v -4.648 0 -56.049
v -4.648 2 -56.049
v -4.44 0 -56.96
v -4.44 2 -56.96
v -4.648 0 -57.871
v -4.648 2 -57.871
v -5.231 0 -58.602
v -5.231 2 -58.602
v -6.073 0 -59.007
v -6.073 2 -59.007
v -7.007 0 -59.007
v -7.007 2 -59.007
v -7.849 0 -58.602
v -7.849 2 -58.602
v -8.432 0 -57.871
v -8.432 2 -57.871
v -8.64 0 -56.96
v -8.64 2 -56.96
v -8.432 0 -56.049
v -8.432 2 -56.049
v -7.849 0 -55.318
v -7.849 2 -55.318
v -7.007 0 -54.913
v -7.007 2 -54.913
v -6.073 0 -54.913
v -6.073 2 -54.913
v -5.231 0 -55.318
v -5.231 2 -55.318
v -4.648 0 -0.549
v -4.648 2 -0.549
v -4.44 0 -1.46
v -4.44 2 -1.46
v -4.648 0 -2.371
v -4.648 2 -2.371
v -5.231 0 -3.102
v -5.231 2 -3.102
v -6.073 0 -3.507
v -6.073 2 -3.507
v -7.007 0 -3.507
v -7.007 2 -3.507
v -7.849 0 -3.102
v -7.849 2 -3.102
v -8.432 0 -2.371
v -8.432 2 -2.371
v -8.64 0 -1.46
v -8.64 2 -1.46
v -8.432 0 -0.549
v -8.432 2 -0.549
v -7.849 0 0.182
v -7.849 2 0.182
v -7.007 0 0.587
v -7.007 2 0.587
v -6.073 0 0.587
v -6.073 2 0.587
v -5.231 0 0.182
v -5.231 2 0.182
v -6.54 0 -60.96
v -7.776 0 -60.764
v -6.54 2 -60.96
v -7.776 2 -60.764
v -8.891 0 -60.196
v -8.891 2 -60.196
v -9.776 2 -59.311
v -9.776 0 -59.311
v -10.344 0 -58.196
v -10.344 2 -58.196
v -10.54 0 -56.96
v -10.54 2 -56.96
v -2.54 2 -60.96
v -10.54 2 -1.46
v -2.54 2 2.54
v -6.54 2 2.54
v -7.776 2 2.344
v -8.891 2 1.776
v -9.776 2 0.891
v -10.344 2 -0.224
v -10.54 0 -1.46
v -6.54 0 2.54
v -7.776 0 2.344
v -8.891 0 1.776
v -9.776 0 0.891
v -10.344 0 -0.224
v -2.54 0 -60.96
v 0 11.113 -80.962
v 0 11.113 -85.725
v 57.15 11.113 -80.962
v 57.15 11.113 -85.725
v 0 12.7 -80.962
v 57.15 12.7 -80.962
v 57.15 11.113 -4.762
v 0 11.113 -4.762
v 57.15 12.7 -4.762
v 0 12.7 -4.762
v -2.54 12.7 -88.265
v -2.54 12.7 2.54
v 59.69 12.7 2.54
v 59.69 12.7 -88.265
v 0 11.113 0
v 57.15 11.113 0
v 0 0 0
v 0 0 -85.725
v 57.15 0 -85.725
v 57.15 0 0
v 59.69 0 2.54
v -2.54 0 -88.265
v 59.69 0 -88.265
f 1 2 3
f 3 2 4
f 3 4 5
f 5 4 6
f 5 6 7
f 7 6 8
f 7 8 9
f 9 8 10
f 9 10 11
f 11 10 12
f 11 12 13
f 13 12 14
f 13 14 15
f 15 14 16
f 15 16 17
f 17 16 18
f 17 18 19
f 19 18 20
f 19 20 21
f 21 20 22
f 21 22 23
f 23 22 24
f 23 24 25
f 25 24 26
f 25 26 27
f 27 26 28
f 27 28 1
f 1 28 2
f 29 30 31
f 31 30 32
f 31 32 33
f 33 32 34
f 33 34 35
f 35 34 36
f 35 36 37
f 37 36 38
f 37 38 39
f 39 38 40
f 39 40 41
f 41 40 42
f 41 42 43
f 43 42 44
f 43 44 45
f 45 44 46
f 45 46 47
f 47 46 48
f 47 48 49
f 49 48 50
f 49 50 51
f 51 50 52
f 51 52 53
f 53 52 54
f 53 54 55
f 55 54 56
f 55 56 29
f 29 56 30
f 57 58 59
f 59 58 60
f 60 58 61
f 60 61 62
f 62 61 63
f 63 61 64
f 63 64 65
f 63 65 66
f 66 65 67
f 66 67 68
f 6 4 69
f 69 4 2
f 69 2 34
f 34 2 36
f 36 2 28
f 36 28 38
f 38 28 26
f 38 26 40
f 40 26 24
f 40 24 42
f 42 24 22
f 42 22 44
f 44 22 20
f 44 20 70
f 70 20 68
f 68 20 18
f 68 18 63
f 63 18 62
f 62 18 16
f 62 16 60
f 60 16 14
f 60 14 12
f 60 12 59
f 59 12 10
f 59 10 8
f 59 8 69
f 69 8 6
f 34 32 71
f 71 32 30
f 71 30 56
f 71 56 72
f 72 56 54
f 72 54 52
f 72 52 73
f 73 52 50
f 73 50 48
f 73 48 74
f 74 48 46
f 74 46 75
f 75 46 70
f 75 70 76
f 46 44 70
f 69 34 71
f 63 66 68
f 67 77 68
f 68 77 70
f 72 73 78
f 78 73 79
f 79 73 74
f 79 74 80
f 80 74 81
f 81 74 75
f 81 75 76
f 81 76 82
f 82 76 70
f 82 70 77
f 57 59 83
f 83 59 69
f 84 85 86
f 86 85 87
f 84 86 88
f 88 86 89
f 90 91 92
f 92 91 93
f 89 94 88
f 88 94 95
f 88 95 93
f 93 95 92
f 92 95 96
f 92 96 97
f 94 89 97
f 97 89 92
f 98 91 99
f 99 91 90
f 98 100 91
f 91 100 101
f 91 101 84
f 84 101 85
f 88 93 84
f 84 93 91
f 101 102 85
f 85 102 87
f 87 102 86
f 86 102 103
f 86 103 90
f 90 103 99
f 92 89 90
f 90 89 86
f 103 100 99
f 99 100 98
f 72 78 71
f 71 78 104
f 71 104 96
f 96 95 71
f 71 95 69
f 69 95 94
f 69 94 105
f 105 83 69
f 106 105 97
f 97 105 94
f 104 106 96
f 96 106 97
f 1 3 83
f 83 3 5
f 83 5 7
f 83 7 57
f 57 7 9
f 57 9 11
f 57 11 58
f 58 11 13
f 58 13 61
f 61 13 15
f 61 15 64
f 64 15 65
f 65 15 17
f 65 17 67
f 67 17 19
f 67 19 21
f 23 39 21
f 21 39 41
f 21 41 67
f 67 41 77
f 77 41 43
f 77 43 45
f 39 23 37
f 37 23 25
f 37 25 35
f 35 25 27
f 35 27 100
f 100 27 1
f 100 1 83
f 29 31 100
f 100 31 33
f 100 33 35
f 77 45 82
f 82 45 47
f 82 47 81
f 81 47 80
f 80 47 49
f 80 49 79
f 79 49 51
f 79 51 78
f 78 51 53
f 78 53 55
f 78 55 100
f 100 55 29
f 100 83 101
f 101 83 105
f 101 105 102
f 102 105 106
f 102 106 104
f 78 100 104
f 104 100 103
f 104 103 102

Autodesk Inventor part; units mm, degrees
ref_plane "YZ Plane" through (0, 0, 0) normal (1, 0, 0) x (0, 1, 0)
ref_plane "XZ Plane" through (0, 0, 0) normal (0, 1, 0) x (-1, 0, 0)
ref_plane "XY Plane" through (0, 0, 0) normal (0, 0, 1) x (1, 0, 0)
sketch "Sketch1" plane through (0, 0, 0) normal (0, 1, 0) x (-1, 0, 0)
  line L0 (0, 0) -> (-57.15, 0)
  line L1 (-57.15, 0) -> (-57.15, -85.725)
  line L2 (-57.15, -85.725) -> (0, -85.725)
  line L3 (0, -85.725) -> (0, 0)
  line L4 (-59.69, -88.265) -> (-59.69, 2.54)
  line L5 (-59.69, 2.54) -> (2.54, 2.54)
  line L6 (2.54, 2.54) -> (2.54, -88.265)
  line L7 (2.54, -88.265) -> (-59.69, -88.265)
  dimension "d0" = 57.15
  dimension "d1" = 85.725
  dimension "d2" = 2.54
extrude "Extrusion1" add sketch "Sketch1" along normal blind 11.1125
sketch "Sketch2" plane through (0, 11.1125, 0) normal (0, 1, 0) x (1, 0, 0)
  line L0 (57.15, 0) -> (0, 0) projected
  line L1 (0, 85.725) -> (57.15, 85.725) projected
  line L2 (0, 0) -> (0, 85.725) projected
  line L3 (57.15, 85.725) -> (57.15, 0) projected
  line L4 (0, 85.725) -> (57.15, 85.725)
  line L5 (57.15, 85.725) -> (57.15, 80.9625)
  line L6 (57.15, 80.9625) -> (0, 80.9625)
  line L7 (0, 80.9625) -> (0, 85.725)
  line L8 (59.69, 88.265) -> (-2.54, 88.265) projected
  line L9 (-2.54, -2.54) -> (59.69, -2.54) projected
  line L10 (0, 0) -> (57.15, 0)
  line L11 (57.15, 0) -> (57.15, 4.7625)
  line L12 (57.15, 4.7625) -> (0, 4.7625)
  line L13 (0, 4.7625) -> (0, 0)
  line L14 (0, 0) -> (0, 85.725) projected
  line L15 (0, 85.725) -> (57.15, 85.725) projected
  line L16 (57.15, 85.725) -> (57.15, 0) projected
  line L17 (57.15, 0) -> (0, 0) projected
  line L18 (59.69, -2.54) -> (59.69, 88.265) projected
  line L19 (59.69, 88.265) -> (-2.54, 88.265) projected
  line L20 (-2.54, 88.265) -> (-2.54, -2.54) projected
  line L21 (-2.54, -2.54) -> (59.69, -2.54) projected
  dimension "d5" = 4.7625
  dimension "d6" = 4.7625
extrude "Extrusion2" add sketch "Sketch2" along normal blind 1.5875 contours L0 L2 L12 L3 | L6 L2 L1 L3 | L18 L9 L20 L8
sketch "Sketch4" plane through (-2.54, 0, -88.265) normal (-1, 0, 0) x (0, 0, 1)
  line L0 (90.805, 0) -> (0, 0) projected
  line L1 (90.805, 0) -> (90.805, 12.7) projected
  line L2 (0, 12.7) -> (90.805, 12.7) projected
  line L3 (0, 0) -> (0, 12.7) projected
  line L4 (90.805, 0) -> (90.805, 12.7) projected
  line L5 (90.805, 0) -> (27.305, 0)
  line L6 (27.305, 0) -> (27.305, 2)
  line L7 (27.305, 2) -> (90.805, 2)
  line L8 (90.805, 2) -> (90.805, 0)
  point P0 (88.265, 0)
  dimension "d13" = 63.5
  dimension "d14" = 2
extrude "Extrusion4" add sketch "Sketch4" along normal blind 8 contours L0 L6 L7 L1
fillet "Fillet2" radius 4 2 edges at (-10.54, 1, 2.54) (-10.54, 1, -60.96)
sketch "Sketch5" plane through (-2.54, 2, 2.54) normal (0, 1, 0) x (1, 0, 0)
  line L0 (-8, 4) -> (-8, 59.5) projected
  line L1 (-8, 4) -> (0, 4)
  line L2 (0, 63.5) -> (0, 0) projected
  circle A0 centre (-4, 4) radius 2.1
  line L3 (-8, 59.5) -> (0, 59.5)
  circle A1 centre (-4, 59.5) radius 2.1
  point P0 (2.54, 2.54)
  dimension "d20" = 4.2
  dimension "d21" = 4.2
extrude "Extrusion5" cut sketch "Sketch5" against normal up to next contours A0 L1 | L1 A0 | A1 L3 | L3 A1
properties part number "MiniBreadboardHolder"
